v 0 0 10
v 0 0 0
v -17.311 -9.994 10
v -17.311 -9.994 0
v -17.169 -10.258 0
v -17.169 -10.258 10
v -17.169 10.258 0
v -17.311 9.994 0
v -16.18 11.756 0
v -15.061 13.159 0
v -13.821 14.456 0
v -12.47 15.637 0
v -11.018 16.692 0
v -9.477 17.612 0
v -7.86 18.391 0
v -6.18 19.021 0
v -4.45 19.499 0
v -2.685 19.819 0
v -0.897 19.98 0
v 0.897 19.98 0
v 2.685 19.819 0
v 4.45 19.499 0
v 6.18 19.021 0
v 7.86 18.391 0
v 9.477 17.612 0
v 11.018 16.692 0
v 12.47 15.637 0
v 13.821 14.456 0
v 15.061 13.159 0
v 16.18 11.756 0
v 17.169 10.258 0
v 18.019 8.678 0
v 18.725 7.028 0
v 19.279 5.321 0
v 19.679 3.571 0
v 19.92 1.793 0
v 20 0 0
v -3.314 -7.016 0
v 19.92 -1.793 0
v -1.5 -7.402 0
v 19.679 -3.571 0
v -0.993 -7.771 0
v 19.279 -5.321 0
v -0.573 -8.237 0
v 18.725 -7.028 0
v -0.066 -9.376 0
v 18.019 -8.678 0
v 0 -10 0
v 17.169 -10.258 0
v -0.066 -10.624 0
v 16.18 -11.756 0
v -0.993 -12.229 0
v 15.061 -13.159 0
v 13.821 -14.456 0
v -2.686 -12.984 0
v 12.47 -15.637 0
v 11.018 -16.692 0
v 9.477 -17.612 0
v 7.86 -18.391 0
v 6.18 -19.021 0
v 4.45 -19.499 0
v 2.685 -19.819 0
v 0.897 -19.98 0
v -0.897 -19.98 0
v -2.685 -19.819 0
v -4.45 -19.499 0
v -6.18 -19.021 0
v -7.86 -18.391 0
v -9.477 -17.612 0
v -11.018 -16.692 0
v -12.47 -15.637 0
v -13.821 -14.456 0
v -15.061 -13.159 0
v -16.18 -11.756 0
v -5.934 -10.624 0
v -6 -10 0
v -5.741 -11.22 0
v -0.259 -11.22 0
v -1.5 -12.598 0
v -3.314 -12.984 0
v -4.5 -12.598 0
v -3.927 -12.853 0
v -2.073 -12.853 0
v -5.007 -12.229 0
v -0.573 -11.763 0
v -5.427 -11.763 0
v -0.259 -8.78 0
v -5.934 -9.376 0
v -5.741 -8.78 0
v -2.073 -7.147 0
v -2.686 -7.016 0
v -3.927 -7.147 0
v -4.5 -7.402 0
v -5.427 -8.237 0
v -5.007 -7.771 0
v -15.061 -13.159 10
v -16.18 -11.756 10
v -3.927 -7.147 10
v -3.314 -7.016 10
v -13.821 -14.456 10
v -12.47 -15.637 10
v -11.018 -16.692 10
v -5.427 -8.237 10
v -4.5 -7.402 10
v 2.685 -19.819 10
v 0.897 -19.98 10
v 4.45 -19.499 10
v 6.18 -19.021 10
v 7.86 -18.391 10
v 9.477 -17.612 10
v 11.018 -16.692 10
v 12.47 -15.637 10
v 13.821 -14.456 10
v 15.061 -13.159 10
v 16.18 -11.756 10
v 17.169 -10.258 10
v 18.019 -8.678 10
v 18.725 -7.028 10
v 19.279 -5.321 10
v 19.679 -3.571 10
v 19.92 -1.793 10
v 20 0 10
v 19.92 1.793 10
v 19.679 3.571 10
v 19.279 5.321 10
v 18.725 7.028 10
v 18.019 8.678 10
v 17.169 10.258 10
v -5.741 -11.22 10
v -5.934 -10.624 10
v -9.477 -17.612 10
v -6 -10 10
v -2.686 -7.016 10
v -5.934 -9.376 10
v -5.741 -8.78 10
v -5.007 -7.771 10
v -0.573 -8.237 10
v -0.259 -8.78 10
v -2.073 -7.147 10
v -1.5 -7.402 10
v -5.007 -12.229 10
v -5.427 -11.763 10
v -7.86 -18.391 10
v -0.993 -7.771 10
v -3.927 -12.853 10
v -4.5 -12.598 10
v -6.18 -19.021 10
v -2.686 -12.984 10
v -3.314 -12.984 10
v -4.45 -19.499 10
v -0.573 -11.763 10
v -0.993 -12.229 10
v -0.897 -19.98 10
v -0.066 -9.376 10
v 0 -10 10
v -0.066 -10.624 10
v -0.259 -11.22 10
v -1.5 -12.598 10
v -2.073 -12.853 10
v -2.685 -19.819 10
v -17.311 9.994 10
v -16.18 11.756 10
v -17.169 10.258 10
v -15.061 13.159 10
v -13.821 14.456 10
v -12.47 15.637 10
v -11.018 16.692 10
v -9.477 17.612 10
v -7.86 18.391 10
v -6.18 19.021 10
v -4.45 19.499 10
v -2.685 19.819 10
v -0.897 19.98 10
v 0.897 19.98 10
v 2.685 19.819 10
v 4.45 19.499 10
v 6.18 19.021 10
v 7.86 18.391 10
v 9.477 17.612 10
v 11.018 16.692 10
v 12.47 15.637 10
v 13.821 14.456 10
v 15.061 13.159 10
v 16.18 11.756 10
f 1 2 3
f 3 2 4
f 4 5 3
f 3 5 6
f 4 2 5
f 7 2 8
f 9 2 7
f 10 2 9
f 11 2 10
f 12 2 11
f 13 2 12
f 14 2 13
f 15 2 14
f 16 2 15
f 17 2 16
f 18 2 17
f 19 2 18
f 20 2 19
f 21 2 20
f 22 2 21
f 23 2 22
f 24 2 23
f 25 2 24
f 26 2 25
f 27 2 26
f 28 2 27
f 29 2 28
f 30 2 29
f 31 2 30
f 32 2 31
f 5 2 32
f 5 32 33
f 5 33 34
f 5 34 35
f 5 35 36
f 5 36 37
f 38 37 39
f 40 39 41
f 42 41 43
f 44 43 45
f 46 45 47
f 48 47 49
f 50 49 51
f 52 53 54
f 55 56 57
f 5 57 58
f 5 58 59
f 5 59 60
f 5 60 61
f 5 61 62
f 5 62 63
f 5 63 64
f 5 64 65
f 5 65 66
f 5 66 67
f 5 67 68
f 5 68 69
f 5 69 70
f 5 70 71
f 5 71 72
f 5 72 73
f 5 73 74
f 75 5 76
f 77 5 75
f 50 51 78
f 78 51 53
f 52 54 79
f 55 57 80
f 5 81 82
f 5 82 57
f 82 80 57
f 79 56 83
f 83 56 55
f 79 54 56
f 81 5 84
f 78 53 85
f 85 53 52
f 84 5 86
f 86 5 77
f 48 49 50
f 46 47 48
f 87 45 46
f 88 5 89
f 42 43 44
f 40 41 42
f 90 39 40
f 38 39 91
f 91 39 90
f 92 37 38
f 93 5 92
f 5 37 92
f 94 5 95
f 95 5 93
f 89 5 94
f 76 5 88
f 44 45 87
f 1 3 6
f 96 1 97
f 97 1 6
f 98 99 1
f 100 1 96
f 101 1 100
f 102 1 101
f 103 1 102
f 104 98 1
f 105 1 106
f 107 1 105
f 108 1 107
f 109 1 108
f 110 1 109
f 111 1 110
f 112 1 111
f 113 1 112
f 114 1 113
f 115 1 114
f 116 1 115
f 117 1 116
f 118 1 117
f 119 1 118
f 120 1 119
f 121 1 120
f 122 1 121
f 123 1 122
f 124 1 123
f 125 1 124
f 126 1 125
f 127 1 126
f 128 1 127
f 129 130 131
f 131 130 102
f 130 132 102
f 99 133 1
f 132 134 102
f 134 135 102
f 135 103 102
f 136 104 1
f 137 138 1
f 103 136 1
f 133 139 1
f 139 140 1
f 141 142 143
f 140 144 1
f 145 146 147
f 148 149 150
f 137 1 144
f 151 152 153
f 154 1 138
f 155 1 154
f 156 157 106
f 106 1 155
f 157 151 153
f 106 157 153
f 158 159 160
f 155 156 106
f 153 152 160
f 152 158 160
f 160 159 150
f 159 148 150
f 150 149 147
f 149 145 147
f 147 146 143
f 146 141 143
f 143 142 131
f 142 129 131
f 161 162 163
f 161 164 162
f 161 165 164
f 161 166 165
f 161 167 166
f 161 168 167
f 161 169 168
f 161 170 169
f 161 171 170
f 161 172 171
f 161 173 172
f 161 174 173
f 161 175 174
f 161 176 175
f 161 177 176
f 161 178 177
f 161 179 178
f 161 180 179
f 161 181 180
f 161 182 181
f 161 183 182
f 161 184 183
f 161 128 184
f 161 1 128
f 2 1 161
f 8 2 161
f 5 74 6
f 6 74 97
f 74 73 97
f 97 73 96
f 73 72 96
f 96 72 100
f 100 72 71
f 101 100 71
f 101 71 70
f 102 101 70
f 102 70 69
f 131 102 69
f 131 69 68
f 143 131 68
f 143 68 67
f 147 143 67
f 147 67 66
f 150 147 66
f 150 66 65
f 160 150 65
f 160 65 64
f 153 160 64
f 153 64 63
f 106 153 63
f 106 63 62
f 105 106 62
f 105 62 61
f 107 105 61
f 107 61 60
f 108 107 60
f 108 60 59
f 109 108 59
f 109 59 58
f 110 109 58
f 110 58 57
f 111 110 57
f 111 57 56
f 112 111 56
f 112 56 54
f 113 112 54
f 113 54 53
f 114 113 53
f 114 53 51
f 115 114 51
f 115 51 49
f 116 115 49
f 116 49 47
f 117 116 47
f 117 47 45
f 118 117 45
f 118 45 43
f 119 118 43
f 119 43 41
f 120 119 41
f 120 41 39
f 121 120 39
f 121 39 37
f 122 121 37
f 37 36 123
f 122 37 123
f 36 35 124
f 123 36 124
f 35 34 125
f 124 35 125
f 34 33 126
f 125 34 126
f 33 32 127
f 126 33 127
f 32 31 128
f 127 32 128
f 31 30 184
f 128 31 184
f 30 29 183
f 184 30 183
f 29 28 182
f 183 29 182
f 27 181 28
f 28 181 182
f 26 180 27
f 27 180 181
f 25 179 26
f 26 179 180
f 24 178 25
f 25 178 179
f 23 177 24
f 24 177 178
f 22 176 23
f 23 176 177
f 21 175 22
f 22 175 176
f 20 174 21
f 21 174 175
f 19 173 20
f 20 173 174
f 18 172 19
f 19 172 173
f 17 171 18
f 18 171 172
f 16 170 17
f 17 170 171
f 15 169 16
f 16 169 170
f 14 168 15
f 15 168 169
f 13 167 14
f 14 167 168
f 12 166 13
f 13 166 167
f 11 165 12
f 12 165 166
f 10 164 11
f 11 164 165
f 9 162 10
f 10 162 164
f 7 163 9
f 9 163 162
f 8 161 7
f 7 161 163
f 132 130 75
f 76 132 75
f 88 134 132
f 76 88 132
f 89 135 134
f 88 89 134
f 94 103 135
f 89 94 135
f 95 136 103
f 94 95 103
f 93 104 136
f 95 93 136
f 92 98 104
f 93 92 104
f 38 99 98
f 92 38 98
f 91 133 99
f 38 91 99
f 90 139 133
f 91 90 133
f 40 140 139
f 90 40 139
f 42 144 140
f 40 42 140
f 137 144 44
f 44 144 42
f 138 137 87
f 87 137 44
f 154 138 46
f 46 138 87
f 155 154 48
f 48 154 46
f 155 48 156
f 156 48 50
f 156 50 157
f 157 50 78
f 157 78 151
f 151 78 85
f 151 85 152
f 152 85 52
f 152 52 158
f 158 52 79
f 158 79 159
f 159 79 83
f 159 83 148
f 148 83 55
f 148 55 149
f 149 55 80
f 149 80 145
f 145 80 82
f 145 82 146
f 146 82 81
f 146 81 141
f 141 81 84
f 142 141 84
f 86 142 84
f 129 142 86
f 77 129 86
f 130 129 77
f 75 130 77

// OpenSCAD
//---------------------------------------------------------------------
// Pacman Figure
// Maxim Loguncov(Максим Логунцов)
// 9/12/13
//---------------------------------------------------------------------
difference(){
	cylinder(h = 10, r=20, $fn=70);
	translate([-15,0,0]){	
		cylinder(h = 15, r = 15, $fn=3, center = false);
	}
	translate([-3,-10,0]){
		cylinder(h = 15, r=3, $fn=30);
	}
}
